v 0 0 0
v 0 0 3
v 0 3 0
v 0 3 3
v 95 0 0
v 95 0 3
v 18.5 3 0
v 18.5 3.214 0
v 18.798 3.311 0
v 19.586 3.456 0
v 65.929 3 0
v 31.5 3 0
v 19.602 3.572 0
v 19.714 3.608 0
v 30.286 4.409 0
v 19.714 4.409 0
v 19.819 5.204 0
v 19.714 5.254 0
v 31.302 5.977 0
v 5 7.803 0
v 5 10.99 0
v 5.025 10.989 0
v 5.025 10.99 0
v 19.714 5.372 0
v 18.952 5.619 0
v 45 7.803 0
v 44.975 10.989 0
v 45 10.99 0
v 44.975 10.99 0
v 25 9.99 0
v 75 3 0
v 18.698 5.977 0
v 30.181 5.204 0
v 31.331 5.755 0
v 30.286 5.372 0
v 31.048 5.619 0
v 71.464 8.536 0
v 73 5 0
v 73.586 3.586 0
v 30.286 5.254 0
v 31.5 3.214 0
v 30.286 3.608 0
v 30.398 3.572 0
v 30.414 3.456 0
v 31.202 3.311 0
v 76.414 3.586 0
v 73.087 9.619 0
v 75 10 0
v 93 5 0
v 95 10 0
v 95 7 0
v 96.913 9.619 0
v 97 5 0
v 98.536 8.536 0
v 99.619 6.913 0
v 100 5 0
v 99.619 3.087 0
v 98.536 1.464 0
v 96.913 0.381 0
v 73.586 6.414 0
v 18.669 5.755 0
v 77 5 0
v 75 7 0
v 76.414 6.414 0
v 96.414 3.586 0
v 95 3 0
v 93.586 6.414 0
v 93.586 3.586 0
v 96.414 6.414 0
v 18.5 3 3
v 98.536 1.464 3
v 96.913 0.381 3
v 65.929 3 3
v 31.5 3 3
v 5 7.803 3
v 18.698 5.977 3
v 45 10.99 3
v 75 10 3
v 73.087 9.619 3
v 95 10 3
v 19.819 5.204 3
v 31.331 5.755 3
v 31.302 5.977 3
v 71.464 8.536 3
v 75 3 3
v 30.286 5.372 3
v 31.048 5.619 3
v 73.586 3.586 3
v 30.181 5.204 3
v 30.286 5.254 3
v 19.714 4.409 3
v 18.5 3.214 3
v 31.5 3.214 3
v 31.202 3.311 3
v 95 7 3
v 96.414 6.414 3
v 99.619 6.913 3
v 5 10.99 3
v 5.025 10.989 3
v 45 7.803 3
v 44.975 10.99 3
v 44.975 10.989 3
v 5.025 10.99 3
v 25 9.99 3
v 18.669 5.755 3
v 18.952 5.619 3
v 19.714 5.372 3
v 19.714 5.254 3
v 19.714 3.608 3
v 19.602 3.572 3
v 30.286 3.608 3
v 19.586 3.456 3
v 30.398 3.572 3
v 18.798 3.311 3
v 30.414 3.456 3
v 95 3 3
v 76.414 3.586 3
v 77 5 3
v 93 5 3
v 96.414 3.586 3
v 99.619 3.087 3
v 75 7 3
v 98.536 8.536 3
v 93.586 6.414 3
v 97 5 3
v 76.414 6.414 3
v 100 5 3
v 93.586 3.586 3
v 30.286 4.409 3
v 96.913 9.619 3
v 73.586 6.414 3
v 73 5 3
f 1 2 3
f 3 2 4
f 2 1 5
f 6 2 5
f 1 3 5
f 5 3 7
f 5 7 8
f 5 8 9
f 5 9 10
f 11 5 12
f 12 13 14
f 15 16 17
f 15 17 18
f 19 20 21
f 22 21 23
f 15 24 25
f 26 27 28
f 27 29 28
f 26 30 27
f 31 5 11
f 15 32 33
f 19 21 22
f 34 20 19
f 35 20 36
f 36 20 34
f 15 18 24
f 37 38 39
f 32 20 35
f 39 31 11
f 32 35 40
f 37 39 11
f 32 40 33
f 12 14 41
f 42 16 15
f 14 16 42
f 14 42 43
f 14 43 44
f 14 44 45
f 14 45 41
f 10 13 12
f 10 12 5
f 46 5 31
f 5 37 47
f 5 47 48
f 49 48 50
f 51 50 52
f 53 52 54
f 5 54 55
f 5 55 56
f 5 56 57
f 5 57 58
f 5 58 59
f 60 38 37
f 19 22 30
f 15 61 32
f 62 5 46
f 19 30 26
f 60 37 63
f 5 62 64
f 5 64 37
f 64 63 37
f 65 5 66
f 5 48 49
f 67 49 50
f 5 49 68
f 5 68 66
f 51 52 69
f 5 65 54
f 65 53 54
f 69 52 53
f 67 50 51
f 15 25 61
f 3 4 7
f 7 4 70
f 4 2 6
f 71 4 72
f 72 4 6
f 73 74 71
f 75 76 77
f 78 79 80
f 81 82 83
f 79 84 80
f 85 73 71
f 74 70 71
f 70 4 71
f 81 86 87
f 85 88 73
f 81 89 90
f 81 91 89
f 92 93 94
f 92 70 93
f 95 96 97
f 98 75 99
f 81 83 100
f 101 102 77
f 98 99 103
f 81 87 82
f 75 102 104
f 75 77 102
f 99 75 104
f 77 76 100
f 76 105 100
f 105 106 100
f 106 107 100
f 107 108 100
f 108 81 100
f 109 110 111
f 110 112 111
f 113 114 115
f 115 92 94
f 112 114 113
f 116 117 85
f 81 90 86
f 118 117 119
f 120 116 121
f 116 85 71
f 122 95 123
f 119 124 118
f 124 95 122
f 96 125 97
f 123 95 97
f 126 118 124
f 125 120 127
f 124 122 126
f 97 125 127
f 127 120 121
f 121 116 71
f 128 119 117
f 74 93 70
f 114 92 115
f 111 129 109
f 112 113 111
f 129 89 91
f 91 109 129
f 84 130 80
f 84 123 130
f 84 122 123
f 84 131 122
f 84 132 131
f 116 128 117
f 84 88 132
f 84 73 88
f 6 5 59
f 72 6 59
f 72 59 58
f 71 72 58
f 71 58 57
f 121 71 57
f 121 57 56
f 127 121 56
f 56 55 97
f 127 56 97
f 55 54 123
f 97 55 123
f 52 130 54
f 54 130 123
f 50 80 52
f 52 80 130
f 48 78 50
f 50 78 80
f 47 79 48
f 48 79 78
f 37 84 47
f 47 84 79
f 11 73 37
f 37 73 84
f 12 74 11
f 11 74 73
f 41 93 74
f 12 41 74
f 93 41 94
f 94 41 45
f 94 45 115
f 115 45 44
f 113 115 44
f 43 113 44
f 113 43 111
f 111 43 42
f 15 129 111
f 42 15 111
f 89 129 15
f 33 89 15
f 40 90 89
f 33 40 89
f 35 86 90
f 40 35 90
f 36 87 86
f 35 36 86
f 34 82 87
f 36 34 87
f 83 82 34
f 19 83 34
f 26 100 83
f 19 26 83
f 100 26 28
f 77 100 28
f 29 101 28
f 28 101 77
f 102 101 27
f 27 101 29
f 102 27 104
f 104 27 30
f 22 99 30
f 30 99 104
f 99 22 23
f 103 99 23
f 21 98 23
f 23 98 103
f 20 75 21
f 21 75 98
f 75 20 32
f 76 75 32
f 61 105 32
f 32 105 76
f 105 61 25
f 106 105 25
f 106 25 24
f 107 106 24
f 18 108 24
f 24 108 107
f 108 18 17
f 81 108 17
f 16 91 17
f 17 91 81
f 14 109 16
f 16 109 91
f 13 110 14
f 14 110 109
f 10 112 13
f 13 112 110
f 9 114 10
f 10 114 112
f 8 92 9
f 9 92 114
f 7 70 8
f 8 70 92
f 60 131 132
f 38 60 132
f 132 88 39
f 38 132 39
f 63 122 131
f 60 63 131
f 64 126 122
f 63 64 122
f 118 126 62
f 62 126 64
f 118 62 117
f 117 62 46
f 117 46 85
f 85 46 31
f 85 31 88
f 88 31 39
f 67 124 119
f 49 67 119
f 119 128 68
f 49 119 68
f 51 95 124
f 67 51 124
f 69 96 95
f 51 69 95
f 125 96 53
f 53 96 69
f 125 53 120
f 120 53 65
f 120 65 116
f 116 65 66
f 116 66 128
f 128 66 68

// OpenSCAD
// Inline cleat for tying off cord-ends.

l1 = 100; // Overall length
l2 = 25;  // Offset to centre of cleat
l3 = 40;  // Overall width of cleat
l4 = 10;  // Width of cleat neck
l5 = 20;  // Distance between buckle holes

d  = 4;    // Diameter of cord clearance hole

h1 = 11;  // Overall height of cleat
h2 = 3;   // Height of base
h3 = 3;   // Height of cleat neck
h4 = 5;   // Height of cleat jaw
h5 = 10;  // Overall height at centre of cleat

t = 3;    // Overall thickness

delta = 0.01;

// Supporting shapes
// -----------------

module RoundedRectangle(l, w, t, r)
{
    translate([r,0,0]) cube(size=[l-2*r,w,t]);
    translate([0,r,0]) cube(size=[l,w-2*r,t]);
    for (xo=[r, l-r])
    {
        for (yo=[r,w-r])
        {
            translate([xo,yo,0]) cylinder(r=r, h=t);
        }
    }
}

//RoundedRectangle(50, 20, 5, 8);

module SemiRoundedRectangle(l, w, t)
{
    r = w/2;
    translate([0,-r,0]) cube(size=[l-r,w,t]);
    cylinder(r=r, h=t);
}

//SemiRoundedRectangle(50, 20, 5);

module BuckleOutline(l, h, t, r)
{
    RoundedRectangle(l, h, t, r);
    intersection()
    {
        translate([r,h-r,0])
            rotate([0,0,180+45])
                translate([0, -r, 0])
                    cube(size=[l, h, t]);
        translate([-h,0,0])
            cube(size=[l+h, h, t]);
    }
}

//BuckleOutline(50, 20, 5, 8);

module CleatCutout(l, hn, hj, t)
{
    lc = l+hn/2;
    a = atan2(hj-hn,l);
    translate([hn/2,hn/2,-delta])
    {
        SemiRoundedRectangle(lc,hn,t+2*delta);
        rotate([0,0,a]) SemiRoundedRectangle(lc,hn,t+2*delta);
    }
}

//CleatCutout(20,3,5,4);

// Base
// -----------------
// Origin at bottom left
module Base(l, h, t)
{
    cube(size=[l,h,t]);
}

// Cleat
// -----------------
// Origin at bottom centre
module Cleat(l,ln,h,hn,hj,hc,t)
{
    lc = (l-ln)/2;
    a  = atan2(h-hc,l/2);
    difference()
    {
        translate([-l/2,0,0]) cube(size=[l,h,t]);
        translate([ln/2,0,0])
            CleatCutout(lc, hn, hj, t);
        translate([-ln/2,0,0])
            mirror([1,0,0])
                CleatCutout(lc, hn, hj, t);
        translate([0,hc,0])
            rotate([0,0,a])
                cube(size=[l/2,h,t]);
        translate([0,hc,0])
            mirror([1,0,0])
                rotate([0,0,a])
                    cube(size=[l/2,h,t]);
    }
}

//Cleat(l3,l4,h1,h3,h4,h5,t);

// Buckle
// -----------------
// Origin at bottom right
module Buckle(l, h, t, p, d, or)
{
    translate([-l,0,0])
    {
        difference()
        {
            BuckleOutline(l,h,t,or);
            translate([l/2+p/2,h/2,-delta]) cylinder(r=d/2,h=h+2*delta,$fn=8);
            translate([l/2-p/2,h/2,-delta]) cylinder(r=d/2,h=h+2*delta,$fn=8);
        }
    }
}

// Composed piece
// -----------------
module InlineCleat()
{
    or = h2+d/2;
    Base(l1-or, h2, t);
    translate([l2,h2-delta,0]) Cleat(l3,l4,h1-h2,h3,h4,h5-h2,t);
    translate([l1,0,0]) Buckle(h2+d/2+l5+d/2+h2, h2+d+h2, t, l5, d, or); 
}

InlineCleat();
